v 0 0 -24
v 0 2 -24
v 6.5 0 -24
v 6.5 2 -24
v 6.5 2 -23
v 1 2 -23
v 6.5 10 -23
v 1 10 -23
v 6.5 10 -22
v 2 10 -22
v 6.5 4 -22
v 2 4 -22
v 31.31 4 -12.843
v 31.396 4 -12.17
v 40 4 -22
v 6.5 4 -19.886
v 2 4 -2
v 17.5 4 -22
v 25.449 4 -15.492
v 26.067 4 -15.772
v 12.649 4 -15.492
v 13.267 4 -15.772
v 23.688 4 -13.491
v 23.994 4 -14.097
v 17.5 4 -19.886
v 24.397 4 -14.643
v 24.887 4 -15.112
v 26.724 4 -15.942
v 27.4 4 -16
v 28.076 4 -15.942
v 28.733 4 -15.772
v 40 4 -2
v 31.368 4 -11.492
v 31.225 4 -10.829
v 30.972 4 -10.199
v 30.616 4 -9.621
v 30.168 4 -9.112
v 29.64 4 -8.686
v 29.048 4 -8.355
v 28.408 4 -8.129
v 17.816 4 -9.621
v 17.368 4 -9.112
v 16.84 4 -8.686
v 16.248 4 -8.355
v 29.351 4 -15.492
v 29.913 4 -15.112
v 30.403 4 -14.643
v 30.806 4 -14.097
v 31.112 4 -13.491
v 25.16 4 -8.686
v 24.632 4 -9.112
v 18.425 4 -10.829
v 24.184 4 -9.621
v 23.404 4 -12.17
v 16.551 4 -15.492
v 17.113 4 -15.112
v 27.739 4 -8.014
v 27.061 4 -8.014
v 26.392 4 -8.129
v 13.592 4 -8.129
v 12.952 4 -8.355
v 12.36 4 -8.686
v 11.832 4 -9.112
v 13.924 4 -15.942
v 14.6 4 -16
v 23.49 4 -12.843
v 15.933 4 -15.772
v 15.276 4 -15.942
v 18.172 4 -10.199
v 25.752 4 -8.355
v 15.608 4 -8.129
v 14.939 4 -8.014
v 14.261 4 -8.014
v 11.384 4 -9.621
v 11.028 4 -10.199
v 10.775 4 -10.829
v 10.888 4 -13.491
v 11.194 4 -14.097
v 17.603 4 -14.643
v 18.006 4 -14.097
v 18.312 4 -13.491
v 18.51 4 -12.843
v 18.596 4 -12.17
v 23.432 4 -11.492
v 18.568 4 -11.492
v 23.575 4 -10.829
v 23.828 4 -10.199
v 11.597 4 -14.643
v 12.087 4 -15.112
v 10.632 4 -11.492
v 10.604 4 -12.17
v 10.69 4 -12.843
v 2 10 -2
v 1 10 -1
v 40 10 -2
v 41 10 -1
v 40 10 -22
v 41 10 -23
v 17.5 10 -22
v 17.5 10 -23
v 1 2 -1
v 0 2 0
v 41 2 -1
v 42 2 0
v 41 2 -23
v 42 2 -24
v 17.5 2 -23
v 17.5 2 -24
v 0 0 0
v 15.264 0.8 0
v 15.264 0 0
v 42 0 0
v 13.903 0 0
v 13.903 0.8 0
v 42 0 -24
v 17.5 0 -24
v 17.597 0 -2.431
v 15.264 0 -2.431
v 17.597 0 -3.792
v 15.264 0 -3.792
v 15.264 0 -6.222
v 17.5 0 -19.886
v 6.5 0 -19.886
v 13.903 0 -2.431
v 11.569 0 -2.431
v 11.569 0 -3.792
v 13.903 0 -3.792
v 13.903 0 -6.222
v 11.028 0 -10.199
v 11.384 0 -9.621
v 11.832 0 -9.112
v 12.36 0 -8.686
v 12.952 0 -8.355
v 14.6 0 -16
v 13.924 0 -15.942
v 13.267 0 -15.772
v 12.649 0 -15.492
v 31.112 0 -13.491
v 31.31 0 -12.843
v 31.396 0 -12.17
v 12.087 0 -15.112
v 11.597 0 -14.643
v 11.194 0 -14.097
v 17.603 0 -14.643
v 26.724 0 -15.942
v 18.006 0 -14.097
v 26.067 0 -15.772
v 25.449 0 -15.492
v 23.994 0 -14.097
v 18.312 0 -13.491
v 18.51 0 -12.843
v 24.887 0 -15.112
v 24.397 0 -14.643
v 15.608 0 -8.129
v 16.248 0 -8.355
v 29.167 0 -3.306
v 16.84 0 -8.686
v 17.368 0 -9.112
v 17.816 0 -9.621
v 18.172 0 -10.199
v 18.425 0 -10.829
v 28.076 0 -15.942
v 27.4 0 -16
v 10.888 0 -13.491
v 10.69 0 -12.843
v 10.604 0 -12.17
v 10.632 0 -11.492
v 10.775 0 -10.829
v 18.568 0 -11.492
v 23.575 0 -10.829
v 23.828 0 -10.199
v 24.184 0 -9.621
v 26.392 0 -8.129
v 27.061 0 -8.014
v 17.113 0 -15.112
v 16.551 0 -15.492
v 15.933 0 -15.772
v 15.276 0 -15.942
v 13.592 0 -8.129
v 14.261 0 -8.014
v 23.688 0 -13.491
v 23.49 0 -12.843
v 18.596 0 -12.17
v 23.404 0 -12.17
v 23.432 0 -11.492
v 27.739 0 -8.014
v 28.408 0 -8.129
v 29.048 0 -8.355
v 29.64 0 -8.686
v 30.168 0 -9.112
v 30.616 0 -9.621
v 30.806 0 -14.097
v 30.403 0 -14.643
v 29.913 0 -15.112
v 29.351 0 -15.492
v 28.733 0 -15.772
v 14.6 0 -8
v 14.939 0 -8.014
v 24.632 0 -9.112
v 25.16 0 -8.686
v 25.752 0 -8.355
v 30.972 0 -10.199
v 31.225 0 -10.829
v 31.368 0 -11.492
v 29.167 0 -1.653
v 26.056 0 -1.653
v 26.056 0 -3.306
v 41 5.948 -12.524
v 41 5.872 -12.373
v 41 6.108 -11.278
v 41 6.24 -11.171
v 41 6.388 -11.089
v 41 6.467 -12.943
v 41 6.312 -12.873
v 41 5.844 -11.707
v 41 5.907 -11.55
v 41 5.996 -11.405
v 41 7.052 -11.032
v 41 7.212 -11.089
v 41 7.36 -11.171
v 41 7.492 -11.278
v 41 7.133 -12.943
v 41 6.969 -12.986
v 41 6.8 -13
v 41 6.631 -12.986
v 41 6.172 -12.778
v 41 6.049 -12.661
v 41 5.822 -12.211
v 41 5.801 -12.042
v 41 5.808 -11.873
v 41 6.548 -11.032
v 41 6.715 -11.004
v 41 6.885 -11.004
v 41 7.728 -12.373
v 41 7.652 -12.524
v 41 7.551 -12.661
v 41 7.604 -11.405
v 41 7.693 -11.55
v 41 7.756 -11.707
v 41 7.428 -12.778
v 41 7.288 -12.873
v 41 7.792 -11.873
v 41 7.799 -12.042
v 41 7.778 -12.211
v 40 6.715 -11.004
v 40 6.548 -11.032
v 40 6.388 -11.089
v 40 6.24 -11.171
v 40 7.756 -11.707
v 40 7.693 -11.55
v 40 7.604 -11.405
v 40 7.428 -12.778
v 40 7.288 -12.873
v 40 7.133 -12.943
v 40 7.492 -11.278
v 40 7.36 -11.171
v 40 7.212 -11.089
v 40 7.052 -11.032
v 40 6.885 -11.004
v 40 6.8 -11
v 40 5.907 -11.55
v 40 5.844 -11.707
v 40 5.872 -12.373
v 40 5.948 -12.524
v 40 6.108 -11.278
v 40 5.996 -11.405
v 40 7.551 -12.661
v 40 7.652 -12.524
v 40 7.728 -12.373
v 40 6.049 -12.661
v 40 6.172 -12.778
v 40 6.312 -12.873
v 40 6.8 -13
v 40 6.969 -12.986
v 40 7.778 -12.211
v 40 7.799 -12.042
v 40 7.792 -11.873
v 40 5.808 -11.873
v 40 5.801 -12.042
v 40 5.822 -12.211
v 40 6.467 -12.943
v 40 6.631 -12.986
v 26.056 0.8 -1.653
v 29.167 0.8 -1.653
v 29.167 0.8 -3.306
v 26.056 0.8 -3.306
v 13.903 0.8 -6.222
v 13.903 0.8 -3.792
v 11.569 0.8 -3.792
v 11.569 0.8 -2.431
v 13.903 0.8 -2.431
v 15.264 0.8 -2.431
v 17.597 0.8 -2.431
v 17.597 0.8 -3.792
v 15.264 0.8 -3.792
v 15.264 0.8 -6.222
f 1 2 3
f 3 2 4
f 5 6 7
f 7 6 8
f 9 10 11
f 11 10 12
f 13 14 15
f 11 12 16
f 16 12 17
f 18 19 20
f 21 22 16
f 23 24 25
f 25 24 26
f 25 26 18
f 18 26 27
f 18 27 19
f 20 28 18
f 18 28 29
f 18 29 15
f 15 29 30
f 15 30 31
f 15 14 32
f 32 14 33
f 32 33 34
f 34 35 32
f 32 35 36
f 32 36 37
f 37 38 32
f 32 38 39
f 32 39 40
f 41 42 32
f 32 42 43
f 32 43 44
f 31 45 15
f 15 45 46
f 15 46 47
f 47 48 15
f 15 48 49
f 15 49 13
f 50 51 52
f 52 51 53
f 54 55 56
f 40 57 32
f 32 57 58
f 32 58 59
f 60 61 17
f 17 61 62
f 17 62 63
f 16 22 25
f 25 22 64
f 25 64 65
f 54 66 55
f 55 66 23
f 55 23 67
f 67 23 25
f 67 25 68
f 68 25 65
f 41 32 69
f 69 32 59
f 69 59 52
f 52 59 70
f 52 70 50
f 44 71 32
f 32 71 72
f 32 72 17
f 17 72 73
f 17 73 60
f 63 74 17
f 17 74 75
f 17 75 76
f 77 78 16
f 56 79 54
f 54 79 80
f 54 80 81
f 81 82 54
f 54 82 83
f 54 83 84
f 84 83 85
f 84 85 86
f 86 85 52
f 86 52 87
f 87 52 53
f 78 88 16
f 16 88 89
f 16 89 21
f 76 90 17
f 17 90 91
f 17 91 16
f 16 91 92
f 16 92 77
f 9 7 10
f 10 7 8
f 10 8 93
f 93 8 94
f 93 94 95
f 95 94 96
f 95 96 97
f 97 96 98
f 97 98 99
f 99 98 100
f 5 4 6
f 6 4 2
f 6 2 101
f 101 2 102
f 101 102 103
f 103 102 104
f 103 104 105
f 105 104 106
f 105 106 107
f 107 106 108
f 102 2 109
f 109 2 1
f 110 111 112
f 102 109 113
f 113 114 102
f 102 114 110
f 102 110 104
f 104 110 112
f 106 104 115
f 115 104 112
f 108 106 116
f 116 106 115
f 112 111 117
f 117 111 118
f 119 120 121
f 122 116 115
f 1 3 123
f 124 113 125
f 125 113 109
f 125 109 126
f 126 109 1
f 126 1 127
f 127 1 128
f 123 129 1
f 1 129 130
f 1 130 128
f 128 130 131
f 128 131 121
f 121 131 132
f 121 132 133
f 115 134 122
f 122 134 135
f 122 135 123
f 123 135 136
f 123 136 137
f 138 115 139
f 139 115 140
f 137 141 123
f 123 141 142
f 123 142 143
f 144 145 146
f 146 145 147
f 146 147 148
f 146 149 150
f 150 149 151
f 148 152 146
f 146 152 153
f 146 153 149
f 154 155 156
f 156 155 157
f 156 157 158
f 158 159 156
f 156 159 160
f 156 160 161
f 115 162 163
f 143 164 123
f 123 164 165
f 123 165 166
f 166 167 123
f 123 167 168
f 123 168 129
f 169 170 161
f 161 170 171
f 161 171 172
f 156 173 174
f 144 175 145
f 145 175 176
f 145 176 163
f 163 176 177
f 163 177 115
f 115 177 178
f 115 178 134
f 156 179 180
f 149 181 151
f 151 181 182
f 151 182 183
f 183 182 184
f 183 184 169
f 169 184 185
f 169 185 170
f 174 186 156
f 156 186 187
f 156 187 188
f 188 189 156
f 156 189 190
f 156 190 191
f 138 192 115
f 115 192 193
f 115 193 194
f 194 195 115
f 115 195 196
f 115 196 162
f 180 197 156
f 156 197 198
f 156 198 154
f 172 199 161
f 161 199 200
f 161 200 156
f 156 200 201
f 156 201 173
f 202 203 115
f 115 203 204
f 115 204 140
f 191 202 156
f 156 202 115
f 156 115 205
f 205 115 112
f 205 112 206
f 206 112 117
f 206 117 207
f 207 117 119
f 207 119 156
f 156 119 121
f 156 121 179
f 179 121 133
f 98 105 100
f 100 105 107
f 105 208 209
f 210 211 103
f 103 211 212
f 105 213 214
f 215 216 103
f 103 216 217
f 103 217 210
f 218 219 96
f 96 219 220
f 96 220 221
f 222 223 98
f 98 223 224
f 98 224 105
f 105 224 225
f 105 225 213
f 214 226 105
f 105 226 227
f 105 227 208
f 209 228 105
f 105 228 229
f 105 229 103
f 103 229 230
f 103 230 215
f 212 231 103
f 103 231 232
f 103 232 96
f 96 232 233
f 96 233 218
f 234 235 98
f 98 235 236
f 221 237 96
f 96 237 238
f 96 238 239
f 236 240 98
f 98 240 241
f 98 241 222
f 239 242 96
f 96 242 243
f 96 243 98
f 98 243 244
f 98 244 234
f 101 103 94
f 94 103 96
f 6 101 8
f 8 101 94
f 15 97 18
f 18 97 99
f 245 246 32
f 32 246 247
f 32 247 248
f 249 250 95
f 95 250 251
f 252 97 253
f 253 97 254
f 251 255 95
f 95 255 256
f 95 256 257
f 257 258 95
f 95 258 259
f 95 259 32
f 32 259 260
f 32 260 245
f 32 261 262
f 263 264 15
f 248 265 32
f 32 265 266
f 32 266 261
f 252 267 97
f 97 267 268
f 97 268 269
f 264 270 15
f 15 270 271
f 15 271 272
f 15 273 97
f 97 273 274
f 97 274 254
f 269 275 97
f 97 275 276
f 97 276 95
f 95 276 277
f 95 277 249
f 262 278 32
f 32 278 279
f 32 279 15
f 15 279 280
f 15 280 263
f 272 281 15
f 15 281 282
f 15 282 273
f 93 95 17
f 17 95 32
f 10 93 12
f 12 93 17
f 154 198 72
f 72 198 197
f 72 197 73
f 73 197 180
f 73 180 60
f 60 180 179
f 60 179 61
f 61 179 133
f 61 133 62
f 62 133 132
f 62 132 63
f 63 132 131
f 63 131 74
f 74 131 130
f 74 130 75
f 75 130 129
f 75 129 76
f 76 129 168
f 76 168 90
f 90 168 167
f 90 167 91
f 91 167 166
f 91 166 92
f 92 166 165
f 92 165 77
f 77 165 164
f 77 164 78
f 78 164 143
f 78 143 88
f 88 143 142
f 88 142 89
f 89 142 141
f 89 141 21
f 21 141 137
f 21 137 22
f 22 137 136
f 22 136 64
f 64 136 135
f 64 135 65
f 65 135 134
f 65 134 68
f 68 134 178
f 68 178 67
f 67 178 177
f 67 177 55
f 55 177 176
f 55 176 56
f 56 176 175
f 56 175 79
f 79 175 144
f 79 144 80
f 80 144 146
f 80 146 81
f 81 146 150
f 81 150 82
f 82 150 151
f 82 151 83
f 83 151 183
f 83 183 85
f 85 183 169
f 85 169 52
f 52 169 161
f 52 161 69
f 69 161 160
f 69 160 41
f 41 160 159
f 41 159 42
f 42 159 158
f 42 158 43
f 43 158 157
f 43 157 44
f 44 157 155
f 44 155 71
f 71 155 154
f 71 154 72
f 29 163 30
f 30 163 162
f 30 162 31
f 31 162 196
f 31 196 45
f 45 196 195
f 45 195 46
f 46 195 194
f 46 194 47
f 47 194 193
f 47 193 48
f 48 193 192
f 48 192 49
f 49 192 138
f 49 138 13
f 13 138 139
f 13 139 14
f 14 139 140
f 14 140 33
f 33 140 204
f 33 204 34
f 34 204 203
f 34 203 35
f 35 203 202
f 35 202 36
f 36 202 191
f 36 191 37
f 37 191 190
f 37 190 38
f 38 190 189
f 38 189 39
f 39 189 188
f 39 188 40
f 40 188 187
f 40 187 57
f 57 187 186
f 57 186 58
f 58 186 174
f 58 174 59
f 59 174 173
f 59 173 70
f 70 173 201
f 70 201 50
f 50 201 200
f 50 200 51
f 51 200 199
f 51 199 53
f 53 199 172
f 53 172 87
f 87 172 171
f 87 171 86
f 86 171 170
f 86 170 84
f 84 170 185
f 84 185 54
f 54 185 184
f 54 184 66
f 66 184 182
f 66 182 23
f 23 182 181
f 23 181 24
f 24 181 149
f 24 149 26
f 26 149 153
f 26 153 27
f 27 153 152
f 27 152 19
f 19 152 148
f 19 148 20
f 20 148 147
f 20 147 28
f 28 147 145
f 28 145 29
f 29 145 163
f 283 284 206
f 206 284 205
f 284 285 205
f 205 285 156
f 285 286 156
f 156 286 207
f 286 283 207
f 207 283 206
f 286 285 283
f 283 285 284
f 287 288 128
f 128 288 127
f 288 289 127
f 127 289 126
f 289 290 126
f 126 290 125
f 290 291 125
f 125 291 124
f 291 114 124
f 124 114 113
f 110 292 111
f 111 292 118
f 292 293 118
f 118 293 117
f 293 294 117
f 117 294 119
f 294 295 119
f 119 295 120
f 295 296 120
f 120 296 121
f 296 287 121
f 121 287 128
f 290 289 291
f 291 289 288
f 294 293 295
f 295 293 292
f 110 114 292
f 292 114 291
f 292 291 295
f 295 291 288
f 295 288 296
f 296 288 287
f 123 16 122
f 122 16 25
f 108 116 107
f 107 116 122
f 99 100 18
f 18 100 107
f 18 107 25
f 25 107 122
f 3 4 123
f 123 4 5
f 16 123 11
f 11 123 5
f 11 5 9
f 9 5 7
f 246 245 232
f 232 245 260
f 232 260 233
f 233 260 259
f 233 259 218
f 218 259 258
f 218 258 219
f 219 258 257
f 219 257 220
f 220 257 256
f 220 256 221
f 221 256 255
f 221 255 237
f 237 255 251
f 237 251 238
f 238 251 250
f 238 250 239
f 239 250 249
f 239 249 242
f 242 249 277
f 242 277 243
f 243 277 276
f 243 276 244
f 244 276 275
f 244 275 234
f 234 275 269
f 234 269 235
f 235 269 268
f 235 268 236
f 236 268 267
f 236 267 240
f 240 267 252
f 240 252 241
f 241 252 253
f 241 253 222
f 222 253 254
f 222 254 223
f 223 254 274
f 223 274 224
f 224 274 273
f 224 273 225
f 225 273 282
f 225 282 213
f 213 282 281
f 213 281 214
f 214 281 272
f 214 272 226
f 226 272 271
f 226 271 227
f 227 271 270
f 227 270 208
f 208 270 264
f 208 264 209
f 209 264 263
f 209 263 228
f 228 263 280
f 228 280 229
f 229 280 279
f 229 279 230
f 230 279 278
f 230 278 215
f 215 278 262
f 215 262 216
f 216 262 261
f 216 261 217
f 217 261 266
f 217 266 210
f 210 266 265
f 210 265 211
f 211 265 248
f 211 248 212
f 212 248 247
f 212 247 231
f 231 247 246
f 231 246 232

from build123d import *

# Parameters (mm, degrees)
SKETCH1_W           = 42
SKETCH1_H           = 24
BOSS_EXTRUDE1_DEPTH = 2
BOSS_EXTRUDE2_DEPTH = 8
CUT_EXTRUDE1_DEPTH  = 6
CUT_EXTRUDE2_REACH  = 51.396
SKETCH2_R           = 4
SKETCH3_W           = 3.111111111
SKETCH3_H           = 1.652777778
CUT_EXTRUDE3_DEPTH  = 0.8
CUT_EXTRUDE4_REACH  = 51.396
SKETCH4_W           = 11
SKETCH4_H           = 4.114457091
CUT_EXTRUDE5_REACH  = 50.549
SKETCH5_R           = 1


with BuildPart() as part:
    # Sketch1 → Boss-Extrude1 (new body)
    with BuildSketch(Plane(origin=(0, 0, 0), x_dir=(1, 0, 0), z_dir=(0, 1, 0))):
        with Locations((21, 12)):
            Rectangle(SKETCH1_W, SKETCH1_H)
    extrude(amount=BOSS_EXTRUDE1_DEPTH)

    # 3DSketch1 → Boss-Extrude2 (add)
    with BuildSketch(Plane(origin=(1, 2, -1), x_dir=(0.876215908676647, 0, -0.4819187497721558), z_dir=(0, -1, 0))):
        Polygon((0, 0), (35.048636347, 19.276749991), (45.650848842, 0), (10.602212495, -19.276749991), align=None)
    extrude(amount=-BOSS_EXTRUDE2_DEPTH)

    # 3DSketch2 → Cut-Extrude1 (cut)
    with BuildSketch(Plane(origin=(2, 10, -2), x_dir=(0.8849182223819825, 0, -0.4657464328326223), z_dir=(0, -1, 0))):
        Polygon((0, 0), (33.626892451, 17.698364448), (42.941821107, 0), (9.314928657, -17.698364448), align=None)
    extrude(amount=CUT_EXTRUDE1_DEPTH, mode=Mode.SUBTRACT)

    # Sketch2 → Cut-Extrude2 (cut, up to next)
    with BuildSketch(Plane.XZ, mode=Mode.PRIVATE) as cut_extrude2_sk1:
        with Locations(Location((27.4, -12, 0), (0, 0, 270))):
            Circle(SKETCH2_R)
    cut_extrude2_tool1 = extrude(cut_extrude2_sk1.sketch, amount=-CUT_EXTRUDE2_REACH, mode=Mode.PRIVATE) & part.part
    # Sketch2 → Cut-Extrude2 (cut, up to next)
    with BuildSketch(Plane.XZ, mode=Mode.PRIVATE) as cut_extrude2_sk2:
        with Locations(Location((14.6, -12, 0), (0, 0, 270))):
            Circle(SKETCH2_R)
    cut_extrude2_tool2 = extrude(cut_extrude2_sk2.sketch, amount=-CUT_EXTRUDE2_REACH, mode=Mode.PRIVATE) & part.part
    add(cut_extrude2_tool1.solids().sort_by_distance((27.4, 0, -12))[0], mode=Mode.SUBTRACT)
    add(cut_extrude2_tool2.solids().sort_by_distance((14.6, 0, -12))[0], mode=Mode.SUBTRACT)

    # Sketch3 → Cut-Extrude3 (cut)
    with BuildSketch(Plane.XZ):
        Polygon((13.902777778, -6.222222222), (15.263888889, -6.222222222), (15.263888889, -3.791666667), (17.597222222, -3.791666667), (17.597222222, -2.430555556), (15.263888889, -2.430555556), (15.263888889, 0), (13.902777778, 0), (13.902777778, -2.430555556), (11.569444444, -2.430555556), (11.569444444, -3.791666667), (13.902777778, -3.791666667), align=None)
        with Locations((27.611111112, -2.479166667)):
            Rectangle(SKETCH3_W, SKETCH3_H)
    extrude(amount=-CUT_EXTRUDE3_DEPTH, mode=Mode.SUBTRACT)

    # Sketch4 → Cut-Extrude4 (cut, up to next)
    with BuildSketch(Plane.XZ, mode=Mode.PRIVATE) as cut_extrude4_sk1:
        with Locations((12, -21.942771455)):
            Rectangle(SKETCH4_W, SKETCH4_H)
    cut_extrude4_tool1 = extrude(cut_extrude4_sk1.sketch, amount=-CUT_EXTRUDE4_REACH, mode=Mode.PRIVATE) & part.part
    add(cut_extrude4_tool1.solids().sort_by_distance((12, 0, -21.942771))[0], mode=Mode.SUBTRACT)

    # Sketch5 → Cut-Extrude5 (cut, up to next)
    with BuildSketch(Plane(origin=(41, 0, 0), x_dir=(0, 0, -1), z_dir=(1, 0, 0)), mode=Mode.PRIVATE) as cut_extrude5_sk1:
        with Locations((12, 6.8)):
            Circle(SKETCH5_R)
    cut_extrude5_tool1 = extrude(cut_extrude5_sk1.sketch, amount=-CUT_EXTRUDE5_REACH, mode=Mode.PRIVATE) & part.part
    add(cut_extrude5_tool1.solids().sort_by_distance((41, 6.8, -12))[0], mode=Mode.SUBTRACT)


solid = part.part
